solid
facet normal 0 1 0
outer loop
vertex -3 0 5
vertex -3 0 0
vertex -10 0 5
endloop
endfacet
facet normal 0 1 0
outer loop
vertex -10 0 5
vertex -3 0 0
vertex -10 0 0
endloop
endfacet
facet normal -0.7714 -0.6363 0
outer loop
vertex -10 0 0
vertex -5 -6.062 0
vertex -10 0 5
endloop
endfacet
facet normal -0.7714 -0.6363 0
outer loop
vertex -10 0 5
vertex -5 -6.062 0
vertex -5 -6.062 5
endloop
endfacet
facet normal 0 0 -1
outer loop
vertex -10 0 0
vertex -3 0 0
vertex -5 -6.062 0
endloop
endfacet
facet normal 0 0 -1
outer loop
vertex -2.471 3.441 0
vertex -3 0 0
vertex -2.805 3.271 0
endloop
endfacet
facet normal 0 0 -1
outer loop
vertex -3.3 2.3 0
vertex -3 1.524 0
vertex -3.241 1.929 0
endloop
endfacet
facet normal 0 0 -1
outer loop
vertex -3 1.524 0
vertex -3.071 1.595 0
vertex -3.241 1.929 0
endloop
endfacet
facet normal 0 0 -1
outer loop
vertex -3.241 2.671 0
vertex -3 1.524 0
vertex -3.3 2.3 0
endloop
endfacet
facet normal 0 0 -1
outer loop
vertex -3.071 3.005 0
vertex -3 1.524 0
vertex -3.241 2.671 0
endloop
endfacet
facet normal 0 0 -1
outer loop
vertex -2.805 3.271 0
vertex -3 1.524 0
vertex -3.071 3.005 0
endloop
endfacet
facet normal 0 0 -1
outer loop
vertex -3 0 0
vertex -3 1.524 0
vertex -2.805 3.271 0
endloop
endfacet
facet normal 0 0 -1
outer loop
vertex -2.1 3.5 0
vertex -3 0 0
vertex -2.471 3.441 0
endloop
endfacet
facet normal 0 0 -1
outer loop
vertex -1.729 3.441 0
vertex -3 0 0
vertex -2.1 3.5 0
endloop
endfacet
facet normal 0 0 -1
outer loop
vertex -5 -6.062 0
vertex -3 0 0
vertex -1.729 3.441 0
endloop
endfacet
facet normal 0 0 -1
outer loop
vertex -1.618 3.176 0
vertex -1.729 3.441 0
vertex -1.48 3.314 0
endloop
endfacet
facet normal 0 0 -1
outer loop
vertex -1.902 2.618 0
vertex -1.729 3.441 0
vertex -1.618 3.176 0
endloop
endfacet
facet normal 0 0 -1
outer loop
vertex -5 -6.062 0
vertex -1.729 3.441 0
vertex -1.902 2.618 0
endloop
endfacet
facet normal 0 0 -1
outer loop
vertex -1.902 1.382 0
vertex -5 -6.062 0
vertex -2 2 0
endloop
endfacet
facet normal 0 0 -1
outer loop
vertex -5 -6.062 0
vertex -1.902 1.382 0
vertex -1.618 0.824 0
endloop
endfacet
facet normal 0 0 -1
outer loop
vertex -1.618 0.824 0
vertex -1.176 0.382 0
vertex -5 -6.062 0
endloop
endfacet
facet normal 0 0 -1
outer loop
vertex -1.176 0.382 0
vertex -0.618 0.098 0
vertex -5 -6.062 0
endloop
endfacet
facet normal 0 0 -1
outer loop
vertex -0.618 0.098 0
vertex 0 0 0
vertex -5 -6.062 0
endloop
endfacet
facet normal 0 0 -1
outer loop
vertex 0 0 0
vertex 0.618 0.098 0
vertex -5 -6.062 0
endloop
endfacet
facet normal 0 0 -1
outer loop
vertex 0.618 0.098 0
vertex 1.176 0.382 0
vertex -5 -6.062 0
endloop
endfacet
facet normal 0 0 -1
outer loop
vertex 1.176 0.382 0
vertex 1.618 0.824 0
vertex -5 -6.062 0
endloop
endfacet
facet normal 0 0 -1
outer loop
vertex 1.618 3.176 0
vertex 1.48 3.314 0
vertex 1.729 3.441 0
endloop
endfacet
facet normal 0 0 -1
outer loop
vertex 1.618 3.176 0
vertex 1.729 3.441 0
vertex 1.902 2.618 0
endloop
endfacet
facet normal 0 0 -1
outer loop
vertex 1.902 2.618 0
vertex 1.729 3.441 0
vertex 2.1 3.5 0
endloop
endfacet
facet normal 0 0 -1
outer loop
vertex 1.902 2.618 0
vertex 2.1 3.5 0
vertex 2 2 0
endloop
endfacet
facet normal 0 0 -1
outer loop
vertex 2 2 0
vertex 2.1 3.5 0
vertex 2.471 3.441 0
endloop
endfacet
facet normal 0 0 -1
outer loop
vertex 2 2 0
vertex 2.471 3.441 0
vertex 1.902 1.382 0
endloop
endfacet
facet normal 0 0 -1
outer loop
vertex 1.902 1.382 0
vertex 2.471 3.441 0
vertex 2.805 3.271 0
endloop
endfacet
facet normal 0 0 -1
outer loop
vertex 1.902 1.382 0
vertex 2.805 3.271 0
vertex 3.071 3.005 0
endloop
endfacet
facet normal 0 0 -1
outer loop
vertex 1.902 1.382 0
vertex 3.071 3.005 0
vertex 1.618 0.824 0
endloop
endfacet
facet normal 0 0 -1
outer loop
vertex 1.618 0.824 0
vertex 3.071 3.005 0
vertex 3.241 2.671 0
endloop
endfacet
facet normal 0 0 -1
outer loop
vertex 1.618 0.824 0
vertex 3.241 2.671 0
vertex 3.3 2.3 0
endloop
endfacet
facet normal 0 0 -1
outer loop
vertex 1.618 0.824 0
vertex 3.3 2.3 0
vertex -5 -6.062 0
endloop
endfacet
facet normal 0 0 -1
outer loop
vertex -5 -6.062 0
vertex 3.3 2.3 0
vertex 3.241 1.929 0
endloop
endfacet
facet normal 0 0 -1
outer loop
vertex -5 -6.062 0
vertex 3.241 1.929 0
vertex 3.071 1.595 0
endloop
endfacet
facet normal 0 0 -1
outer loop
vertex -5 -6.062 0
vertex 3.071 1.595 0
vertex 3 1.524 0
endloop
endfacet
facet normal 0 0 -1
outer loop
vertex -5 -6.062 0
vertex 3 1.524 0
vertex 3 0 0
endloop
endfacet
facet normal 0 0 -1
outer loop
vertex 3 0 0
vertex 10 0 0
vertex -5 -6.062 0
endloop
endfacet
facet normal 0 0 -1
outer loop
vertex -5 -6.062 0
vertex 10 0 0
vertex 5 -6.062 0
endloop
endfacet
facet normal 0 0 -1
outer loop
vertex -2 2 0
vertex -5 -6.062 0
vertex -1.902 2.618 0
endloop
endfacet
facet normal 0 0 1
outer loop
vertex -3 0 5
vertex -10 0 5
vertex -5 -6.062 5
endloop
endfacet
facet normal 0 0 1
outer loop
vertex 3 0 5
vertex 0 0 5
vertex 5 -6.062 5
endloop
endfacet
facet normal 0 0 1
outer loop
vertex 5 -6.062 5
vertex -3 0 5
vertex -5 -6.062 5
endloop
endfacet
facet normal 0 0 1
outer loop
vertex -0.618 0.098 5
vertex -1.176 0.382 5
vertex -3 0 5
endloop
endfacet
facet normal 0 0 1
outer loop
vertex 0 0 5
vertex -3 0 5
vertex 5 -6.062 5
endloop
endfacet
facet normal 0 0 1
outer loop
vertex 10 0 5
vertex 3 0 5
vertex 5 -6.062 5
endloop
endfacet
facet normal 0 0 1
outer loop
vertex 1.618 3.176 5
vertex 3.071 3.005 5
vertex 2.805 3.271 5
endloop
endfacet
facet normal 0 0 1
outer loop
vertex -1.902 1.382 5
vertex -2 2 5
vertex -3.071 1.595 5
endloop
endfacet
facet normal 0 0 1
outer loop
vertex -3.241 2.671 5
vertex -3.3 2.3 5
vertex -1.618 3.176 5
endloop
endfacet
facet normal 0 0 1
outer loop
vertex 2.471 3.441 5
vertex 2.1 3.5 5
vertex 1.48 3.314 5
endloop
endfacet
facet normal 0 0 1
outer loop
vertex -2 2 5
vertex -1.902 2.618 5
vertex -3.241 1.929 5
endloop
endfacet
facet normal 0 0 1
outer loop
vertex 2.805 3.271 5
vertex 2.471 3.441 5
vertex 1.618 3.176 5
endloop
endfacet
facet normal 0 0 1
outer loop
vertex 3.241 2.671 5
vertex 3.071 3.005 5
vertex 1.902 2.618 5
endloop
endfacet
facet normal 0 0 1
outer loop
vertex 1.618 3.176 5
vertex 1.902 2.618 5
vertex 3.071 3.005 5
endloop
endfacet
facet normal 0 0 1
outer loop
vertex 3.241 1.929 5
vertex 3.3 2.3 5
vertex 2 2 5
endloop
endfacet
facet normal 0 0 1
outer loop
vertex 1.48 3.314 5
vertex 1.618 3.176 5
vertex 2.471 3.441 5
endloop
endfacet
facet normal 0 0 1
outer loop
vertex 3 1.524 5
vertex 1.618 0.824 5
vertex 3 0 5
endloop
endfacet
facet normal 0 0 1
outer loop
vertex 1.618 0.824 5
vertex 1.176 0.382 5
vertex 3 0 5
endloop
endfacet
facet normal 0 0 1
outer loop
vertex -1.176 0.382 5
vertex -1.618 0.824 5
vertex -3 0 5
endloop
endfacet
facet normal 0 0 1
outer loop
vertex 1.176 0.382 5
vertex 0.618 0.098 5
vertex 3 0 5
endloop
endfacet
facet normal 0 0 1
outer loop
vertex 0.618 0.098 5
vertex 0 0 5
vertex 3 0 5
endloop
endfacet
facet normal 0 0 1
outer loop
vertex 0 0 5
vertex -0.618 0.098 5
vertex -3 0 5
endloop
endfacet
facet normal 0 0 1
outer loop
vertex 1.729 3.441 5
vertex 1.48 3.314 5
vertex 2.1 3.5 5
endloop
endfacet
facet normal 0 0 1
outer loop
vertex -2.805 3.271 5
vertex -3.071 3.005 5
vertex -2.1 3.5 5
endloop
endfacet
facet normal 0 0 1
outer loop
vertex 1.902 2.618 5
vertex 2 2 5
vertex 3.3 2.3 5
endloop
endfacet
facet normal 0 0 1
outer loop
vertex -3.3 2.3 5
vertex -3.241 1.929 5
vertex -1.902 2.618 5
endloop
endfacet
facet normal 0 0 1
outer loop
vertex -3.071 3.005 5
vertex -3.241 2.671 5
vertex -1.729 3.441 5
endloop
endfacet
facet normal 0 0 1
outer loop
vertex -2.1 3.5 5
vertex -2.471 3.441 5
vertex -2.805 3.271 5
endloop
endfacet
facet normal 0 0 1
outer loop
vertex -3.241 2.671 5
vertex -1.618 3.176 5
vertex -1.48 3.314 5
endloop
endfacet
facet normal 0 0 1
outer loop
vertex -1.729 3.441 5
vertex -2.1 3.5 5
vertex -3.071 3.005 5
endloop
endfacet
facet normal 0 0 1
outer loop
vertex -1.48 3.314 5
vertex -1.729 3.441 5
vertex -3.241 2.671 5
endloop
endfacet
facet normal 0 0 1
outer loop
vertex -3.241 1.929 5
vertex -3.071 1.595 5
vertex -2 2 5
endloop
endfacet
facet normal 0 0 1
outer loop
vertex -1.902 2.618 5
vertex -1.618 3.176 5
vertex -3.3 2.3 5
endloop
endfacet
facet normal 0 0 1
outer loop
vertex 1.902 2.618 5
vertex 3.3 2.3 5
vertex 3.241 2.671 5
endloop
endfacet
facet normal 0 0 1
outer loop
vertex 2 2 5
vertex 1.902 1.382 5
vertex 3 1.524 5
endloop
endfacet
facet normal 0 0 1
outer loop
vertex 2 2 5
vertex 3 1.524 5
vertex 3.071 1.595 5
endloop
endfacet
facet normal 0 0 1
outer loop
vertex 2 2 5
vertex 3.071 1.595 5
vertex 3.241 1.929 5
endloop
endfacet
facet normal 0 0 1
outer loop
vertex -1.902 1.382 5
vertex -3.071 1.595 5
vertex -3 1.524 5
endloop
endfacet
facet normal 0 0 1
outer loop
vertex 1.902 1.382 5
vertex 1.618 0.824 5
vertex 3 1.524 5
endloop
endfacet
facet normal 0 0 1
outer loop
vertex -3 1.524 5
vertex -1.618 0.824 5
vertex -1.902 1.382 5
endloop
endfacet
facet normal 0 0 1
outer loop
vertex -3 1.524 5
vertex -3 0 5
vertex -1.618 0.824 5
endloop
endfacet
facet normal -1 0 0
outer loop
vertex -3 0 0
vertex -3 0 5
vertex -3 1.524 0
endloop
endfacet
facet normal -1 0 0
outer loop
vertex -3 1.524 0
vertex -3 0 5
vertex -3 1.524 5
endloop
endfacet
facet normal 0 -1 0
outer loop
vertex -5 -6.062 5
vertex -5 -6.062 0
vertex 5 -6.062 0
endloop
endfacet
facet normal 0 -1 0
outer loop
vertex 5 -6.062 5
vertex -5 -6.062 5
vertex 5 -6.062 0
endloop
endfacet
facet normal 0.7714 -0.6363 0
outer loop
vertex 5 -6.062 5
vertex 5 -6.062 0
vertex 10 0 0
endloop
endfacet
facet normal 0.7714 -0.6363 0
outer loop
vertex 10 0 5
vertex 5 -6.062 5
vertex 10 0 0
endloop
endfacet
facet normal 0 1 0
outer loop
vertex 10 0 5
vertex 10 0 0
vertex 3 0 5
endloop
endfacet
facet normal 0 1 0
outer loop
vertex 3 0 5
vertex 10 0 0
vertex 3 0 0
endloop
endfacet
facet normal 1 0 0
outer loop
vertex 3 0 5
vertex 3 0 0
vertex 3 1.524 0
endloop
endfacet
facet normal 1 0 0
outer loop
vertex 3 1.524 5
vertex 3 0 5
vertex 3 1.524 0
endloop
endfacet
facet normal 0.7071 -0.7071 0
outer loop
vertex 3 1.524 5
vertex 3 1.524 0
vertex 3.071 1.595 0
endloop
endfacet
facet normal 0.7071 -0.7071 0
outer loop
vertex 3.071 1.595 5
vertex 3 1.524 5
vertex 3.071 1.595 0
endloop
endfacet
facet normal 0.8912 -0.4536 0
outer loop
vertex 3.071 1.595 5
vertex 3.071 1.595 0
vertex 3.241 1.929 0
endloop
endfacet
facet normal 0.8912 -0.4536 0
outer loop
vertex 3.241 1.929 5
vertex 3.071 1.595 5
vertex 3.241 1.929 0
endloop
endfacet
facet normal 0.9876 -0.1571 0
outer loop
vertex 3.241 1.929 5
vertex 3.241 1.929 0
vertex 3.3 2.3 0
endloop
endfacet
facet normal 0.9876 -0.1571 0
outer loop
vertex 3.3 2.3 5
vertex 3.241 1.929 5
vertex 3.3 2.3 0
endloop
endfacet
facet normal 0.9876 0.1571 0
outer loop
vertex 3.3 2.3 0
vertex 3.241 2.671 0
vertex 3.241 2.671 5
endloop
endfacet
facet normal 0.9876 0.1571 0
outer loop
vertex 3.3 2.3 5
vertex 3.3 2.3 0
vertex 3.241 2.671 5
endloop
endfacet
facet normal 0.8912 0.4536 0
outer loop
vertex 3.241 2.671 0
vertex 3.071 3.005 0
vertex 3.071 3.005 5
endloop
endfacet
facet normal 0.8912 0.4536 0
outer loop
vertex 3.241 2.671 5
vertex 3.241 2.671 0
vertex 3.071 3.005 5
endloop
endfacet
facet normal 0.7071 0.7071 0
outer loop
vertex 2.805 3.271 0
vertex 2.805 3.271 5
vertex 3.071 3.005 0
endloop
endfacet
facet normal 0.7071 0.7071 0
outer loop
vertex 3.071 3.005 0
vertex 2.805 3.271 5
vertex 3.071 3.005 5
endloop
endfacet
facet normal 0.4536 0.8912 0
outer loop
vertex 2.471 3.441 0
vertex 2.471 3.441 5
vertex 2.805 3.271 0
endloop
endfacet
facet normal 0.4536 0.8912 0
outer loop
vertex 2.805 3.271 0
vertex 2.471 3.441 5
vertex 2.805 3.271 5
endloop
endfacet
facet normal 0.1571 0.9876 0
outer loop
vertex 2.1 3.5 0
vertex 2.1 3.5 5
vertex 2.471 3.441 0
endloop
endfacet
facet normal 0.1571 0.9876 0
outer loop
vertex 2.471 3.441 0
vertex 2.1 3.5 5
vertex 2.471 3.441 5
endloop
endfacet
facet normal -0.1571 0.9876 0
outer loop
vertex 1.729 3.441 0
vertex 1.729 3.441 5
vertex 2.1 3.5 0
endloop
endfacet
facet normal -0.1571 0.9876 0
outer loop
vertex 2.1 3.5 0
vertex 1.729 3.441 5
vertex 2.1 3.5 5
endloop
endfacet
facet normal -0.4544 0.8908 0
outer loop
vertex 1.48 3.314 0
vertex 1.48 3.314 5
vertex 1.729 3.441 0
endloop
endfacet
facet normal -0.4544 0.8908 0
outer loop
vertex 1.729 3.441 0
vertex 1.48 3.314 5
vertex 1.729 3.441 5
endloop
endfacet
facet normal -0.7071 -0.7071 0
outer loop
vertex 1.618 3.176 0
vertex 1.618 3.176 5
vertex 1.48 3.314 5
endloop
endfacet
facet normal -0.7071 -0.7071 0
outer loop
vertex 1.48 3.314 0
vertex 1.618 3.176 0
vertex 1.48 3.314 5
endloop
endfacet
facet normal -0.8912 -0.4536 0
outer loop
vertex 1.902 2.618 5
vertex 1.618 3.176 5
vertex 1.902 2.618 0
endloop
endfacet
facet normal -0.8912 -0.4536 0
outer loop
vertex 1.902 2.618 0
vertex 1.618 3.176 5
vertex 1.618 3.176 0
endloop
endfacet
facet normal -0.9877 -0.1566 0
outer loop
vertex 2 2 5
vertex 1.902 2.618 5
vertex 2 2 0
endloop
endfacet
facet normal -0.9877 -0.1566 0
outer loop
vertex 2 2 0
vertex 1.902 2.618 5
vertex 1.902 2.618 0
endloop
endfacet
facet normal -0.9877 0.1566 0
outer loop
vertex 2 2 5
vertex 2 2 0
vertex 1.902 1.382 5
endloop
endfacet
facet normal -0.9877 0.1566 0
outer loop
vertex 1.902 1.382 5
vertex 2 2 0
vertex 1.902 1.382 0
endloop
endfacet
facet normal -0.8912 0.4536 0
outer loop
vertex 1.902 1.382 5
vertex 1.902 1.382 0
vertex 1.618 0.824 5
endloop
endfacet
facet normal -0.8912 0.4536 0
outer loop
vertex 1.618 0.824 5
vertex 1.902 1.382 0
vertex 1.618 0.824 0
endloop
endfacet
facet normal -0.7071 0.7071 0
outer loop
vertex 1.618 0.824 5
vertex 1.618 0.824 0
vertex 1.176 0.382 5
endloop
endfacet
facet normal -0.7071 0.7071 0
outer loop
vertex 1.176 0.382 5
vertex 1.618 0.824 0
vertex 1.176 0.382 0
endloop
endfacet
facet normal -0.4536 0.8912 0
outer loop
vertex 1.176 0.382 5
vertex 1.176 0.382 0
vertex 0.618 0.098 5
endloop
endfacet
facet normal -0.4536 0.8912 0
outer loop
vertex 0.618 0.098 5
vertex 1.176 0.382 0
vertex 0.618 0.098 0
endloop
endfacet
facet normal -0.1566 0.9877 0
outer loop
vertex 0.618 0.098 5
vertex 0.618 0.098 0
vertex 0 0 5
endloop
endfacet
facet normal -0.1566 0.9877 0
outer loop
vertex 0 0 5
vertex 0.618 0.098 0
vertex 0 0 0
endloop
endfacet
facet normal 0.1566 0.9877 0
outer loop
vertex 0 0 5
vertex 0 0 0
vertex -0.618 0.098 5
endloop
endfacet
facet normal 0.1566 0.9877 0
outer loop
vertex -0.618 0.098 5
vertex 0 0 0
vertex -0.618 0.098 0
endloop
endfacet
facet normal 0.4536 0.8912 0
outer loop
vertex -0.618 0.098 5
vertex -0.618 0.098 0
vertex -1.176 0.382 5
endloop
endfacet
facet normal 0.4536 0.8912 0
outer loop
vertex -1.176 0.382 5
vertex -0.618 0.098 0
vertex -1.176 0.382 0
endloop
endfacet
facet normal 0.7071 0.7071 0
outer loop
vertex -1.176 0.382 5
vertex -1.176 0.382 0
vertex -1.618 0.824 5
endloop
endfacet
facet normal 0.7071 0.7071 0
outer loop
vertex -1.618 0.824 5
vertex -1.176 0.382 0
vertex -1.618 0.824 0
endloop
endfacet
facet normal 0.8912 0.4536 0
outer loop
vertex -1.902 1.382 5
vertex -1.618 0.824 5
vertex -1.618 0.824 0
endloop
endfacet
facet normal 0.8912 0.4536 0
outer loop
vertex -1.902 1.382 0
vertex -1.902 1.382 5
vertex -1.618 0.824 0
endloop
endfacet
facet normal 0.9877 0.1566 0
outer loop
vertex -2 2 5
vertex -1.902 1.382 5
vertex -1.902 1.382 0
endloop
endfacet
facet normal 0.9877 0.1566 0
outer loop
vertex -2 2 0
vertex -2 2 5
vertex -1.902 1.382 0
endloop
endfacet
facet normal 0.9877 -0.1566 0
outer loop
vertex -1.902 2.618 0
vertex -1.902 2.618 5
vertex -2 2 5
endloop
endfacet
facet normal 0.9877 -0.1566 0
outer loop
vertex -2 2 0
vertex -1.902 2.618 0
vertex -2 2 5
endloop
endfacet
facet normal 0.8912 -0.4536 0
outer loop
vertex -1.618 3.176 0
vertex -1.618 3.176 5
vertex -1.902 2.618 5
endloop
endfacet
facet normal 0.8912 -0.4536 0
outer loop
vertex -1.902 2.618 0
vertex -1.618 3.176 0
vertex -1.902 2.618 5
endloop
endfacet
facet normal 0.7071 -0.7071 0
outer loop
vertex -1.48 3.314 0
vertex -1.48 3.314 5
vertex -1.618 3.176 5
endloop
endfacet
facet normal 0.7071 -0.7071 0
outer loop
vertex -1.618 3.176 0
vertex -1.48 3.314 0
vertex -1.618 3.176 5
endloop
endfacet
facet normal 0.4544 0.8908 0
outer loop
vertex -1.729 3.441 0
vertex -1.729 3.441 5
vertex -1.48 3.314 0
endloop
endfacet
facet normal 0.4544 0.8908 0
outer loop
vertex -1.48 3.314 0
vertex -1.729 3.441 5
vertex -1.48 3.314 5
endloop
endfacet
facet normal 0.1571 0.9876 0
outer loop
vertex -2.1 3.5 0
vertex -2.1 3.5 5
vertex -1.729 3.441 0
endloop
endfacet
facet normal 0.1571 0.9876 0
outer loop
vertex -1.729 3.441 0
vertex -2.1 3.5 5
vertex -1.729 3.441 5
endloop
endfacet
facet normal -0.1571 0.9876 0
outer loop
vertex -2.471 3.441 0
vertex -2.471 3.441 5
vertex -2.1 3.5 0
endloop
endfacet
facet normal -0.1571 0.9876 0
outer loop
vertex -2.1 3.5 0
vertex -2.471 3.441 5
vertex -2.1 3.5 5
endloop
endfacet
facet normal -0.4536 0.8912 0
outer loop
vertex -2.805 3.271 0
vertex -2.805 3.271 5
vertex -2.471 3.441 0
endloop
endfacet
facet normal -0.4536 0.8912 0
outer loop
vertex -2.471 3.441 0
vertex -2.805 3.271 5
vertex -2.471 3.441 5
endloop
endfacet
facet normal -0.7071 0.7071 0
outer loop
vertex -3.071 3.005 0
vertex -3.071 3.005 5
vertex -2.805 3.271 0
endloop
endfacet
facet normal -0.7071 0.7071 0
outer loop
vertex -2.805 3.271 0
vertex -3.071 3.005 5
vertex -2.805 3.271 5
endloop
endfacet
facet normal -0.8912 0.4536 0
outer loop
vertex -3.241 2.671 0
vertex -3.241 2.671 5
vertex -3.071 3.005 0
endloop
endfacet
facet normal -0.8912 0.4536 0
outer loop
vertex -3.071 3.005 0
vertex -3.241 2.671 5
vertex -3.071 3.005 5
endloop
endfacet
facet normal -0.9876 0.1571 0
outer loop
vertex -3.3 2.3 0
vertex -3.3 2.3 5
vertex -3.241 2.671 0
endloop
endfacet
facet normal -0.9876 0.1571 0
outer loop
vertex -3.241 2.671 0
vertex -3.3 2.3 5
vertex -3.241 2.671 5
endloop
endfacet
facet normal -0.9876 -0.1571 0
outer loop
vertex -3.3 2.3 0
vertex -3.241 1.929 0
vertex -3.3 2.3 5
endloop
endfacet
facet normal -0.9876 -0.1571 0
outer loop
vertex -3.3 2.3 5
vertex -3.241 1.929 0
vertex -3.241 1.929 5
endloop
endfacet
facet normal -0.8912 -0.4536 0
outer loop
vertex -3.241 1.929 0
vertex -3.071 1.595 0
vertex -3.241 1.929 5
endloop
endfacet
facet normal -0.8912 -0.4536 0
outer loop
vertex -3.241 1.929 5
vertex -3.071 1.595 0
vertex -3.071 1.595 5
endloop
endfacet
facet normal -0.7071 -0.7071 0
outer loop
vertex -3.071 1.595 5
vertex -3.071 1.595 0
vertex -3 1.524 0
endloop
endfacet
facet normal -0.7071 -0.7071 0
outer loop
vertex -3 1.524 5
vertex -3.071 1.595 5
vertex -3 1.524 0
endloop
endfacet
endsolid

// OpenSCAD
$fn=20;
difference (){
	scale ([1,0.7,1])cylinder (5,10,10,$fn=6);
	translate ([-10,0,0]) cube([20,20,5]);
//	translate ([0,-4.3,0]) 	cylinder(5,2,2);
}

difference(){
	union(){
		translate ([-3,0,0]) cube([6,3,5]);
		translate ([2.1,2.3,0]) 	cylinder(5,1.2,1.2);
		translate ([-2.1,2.3,0]) 	cylinder(5,1.2,1.2);
	}
		translate ([0,2.0,0]) 	cylinder(5,2,2);
}
